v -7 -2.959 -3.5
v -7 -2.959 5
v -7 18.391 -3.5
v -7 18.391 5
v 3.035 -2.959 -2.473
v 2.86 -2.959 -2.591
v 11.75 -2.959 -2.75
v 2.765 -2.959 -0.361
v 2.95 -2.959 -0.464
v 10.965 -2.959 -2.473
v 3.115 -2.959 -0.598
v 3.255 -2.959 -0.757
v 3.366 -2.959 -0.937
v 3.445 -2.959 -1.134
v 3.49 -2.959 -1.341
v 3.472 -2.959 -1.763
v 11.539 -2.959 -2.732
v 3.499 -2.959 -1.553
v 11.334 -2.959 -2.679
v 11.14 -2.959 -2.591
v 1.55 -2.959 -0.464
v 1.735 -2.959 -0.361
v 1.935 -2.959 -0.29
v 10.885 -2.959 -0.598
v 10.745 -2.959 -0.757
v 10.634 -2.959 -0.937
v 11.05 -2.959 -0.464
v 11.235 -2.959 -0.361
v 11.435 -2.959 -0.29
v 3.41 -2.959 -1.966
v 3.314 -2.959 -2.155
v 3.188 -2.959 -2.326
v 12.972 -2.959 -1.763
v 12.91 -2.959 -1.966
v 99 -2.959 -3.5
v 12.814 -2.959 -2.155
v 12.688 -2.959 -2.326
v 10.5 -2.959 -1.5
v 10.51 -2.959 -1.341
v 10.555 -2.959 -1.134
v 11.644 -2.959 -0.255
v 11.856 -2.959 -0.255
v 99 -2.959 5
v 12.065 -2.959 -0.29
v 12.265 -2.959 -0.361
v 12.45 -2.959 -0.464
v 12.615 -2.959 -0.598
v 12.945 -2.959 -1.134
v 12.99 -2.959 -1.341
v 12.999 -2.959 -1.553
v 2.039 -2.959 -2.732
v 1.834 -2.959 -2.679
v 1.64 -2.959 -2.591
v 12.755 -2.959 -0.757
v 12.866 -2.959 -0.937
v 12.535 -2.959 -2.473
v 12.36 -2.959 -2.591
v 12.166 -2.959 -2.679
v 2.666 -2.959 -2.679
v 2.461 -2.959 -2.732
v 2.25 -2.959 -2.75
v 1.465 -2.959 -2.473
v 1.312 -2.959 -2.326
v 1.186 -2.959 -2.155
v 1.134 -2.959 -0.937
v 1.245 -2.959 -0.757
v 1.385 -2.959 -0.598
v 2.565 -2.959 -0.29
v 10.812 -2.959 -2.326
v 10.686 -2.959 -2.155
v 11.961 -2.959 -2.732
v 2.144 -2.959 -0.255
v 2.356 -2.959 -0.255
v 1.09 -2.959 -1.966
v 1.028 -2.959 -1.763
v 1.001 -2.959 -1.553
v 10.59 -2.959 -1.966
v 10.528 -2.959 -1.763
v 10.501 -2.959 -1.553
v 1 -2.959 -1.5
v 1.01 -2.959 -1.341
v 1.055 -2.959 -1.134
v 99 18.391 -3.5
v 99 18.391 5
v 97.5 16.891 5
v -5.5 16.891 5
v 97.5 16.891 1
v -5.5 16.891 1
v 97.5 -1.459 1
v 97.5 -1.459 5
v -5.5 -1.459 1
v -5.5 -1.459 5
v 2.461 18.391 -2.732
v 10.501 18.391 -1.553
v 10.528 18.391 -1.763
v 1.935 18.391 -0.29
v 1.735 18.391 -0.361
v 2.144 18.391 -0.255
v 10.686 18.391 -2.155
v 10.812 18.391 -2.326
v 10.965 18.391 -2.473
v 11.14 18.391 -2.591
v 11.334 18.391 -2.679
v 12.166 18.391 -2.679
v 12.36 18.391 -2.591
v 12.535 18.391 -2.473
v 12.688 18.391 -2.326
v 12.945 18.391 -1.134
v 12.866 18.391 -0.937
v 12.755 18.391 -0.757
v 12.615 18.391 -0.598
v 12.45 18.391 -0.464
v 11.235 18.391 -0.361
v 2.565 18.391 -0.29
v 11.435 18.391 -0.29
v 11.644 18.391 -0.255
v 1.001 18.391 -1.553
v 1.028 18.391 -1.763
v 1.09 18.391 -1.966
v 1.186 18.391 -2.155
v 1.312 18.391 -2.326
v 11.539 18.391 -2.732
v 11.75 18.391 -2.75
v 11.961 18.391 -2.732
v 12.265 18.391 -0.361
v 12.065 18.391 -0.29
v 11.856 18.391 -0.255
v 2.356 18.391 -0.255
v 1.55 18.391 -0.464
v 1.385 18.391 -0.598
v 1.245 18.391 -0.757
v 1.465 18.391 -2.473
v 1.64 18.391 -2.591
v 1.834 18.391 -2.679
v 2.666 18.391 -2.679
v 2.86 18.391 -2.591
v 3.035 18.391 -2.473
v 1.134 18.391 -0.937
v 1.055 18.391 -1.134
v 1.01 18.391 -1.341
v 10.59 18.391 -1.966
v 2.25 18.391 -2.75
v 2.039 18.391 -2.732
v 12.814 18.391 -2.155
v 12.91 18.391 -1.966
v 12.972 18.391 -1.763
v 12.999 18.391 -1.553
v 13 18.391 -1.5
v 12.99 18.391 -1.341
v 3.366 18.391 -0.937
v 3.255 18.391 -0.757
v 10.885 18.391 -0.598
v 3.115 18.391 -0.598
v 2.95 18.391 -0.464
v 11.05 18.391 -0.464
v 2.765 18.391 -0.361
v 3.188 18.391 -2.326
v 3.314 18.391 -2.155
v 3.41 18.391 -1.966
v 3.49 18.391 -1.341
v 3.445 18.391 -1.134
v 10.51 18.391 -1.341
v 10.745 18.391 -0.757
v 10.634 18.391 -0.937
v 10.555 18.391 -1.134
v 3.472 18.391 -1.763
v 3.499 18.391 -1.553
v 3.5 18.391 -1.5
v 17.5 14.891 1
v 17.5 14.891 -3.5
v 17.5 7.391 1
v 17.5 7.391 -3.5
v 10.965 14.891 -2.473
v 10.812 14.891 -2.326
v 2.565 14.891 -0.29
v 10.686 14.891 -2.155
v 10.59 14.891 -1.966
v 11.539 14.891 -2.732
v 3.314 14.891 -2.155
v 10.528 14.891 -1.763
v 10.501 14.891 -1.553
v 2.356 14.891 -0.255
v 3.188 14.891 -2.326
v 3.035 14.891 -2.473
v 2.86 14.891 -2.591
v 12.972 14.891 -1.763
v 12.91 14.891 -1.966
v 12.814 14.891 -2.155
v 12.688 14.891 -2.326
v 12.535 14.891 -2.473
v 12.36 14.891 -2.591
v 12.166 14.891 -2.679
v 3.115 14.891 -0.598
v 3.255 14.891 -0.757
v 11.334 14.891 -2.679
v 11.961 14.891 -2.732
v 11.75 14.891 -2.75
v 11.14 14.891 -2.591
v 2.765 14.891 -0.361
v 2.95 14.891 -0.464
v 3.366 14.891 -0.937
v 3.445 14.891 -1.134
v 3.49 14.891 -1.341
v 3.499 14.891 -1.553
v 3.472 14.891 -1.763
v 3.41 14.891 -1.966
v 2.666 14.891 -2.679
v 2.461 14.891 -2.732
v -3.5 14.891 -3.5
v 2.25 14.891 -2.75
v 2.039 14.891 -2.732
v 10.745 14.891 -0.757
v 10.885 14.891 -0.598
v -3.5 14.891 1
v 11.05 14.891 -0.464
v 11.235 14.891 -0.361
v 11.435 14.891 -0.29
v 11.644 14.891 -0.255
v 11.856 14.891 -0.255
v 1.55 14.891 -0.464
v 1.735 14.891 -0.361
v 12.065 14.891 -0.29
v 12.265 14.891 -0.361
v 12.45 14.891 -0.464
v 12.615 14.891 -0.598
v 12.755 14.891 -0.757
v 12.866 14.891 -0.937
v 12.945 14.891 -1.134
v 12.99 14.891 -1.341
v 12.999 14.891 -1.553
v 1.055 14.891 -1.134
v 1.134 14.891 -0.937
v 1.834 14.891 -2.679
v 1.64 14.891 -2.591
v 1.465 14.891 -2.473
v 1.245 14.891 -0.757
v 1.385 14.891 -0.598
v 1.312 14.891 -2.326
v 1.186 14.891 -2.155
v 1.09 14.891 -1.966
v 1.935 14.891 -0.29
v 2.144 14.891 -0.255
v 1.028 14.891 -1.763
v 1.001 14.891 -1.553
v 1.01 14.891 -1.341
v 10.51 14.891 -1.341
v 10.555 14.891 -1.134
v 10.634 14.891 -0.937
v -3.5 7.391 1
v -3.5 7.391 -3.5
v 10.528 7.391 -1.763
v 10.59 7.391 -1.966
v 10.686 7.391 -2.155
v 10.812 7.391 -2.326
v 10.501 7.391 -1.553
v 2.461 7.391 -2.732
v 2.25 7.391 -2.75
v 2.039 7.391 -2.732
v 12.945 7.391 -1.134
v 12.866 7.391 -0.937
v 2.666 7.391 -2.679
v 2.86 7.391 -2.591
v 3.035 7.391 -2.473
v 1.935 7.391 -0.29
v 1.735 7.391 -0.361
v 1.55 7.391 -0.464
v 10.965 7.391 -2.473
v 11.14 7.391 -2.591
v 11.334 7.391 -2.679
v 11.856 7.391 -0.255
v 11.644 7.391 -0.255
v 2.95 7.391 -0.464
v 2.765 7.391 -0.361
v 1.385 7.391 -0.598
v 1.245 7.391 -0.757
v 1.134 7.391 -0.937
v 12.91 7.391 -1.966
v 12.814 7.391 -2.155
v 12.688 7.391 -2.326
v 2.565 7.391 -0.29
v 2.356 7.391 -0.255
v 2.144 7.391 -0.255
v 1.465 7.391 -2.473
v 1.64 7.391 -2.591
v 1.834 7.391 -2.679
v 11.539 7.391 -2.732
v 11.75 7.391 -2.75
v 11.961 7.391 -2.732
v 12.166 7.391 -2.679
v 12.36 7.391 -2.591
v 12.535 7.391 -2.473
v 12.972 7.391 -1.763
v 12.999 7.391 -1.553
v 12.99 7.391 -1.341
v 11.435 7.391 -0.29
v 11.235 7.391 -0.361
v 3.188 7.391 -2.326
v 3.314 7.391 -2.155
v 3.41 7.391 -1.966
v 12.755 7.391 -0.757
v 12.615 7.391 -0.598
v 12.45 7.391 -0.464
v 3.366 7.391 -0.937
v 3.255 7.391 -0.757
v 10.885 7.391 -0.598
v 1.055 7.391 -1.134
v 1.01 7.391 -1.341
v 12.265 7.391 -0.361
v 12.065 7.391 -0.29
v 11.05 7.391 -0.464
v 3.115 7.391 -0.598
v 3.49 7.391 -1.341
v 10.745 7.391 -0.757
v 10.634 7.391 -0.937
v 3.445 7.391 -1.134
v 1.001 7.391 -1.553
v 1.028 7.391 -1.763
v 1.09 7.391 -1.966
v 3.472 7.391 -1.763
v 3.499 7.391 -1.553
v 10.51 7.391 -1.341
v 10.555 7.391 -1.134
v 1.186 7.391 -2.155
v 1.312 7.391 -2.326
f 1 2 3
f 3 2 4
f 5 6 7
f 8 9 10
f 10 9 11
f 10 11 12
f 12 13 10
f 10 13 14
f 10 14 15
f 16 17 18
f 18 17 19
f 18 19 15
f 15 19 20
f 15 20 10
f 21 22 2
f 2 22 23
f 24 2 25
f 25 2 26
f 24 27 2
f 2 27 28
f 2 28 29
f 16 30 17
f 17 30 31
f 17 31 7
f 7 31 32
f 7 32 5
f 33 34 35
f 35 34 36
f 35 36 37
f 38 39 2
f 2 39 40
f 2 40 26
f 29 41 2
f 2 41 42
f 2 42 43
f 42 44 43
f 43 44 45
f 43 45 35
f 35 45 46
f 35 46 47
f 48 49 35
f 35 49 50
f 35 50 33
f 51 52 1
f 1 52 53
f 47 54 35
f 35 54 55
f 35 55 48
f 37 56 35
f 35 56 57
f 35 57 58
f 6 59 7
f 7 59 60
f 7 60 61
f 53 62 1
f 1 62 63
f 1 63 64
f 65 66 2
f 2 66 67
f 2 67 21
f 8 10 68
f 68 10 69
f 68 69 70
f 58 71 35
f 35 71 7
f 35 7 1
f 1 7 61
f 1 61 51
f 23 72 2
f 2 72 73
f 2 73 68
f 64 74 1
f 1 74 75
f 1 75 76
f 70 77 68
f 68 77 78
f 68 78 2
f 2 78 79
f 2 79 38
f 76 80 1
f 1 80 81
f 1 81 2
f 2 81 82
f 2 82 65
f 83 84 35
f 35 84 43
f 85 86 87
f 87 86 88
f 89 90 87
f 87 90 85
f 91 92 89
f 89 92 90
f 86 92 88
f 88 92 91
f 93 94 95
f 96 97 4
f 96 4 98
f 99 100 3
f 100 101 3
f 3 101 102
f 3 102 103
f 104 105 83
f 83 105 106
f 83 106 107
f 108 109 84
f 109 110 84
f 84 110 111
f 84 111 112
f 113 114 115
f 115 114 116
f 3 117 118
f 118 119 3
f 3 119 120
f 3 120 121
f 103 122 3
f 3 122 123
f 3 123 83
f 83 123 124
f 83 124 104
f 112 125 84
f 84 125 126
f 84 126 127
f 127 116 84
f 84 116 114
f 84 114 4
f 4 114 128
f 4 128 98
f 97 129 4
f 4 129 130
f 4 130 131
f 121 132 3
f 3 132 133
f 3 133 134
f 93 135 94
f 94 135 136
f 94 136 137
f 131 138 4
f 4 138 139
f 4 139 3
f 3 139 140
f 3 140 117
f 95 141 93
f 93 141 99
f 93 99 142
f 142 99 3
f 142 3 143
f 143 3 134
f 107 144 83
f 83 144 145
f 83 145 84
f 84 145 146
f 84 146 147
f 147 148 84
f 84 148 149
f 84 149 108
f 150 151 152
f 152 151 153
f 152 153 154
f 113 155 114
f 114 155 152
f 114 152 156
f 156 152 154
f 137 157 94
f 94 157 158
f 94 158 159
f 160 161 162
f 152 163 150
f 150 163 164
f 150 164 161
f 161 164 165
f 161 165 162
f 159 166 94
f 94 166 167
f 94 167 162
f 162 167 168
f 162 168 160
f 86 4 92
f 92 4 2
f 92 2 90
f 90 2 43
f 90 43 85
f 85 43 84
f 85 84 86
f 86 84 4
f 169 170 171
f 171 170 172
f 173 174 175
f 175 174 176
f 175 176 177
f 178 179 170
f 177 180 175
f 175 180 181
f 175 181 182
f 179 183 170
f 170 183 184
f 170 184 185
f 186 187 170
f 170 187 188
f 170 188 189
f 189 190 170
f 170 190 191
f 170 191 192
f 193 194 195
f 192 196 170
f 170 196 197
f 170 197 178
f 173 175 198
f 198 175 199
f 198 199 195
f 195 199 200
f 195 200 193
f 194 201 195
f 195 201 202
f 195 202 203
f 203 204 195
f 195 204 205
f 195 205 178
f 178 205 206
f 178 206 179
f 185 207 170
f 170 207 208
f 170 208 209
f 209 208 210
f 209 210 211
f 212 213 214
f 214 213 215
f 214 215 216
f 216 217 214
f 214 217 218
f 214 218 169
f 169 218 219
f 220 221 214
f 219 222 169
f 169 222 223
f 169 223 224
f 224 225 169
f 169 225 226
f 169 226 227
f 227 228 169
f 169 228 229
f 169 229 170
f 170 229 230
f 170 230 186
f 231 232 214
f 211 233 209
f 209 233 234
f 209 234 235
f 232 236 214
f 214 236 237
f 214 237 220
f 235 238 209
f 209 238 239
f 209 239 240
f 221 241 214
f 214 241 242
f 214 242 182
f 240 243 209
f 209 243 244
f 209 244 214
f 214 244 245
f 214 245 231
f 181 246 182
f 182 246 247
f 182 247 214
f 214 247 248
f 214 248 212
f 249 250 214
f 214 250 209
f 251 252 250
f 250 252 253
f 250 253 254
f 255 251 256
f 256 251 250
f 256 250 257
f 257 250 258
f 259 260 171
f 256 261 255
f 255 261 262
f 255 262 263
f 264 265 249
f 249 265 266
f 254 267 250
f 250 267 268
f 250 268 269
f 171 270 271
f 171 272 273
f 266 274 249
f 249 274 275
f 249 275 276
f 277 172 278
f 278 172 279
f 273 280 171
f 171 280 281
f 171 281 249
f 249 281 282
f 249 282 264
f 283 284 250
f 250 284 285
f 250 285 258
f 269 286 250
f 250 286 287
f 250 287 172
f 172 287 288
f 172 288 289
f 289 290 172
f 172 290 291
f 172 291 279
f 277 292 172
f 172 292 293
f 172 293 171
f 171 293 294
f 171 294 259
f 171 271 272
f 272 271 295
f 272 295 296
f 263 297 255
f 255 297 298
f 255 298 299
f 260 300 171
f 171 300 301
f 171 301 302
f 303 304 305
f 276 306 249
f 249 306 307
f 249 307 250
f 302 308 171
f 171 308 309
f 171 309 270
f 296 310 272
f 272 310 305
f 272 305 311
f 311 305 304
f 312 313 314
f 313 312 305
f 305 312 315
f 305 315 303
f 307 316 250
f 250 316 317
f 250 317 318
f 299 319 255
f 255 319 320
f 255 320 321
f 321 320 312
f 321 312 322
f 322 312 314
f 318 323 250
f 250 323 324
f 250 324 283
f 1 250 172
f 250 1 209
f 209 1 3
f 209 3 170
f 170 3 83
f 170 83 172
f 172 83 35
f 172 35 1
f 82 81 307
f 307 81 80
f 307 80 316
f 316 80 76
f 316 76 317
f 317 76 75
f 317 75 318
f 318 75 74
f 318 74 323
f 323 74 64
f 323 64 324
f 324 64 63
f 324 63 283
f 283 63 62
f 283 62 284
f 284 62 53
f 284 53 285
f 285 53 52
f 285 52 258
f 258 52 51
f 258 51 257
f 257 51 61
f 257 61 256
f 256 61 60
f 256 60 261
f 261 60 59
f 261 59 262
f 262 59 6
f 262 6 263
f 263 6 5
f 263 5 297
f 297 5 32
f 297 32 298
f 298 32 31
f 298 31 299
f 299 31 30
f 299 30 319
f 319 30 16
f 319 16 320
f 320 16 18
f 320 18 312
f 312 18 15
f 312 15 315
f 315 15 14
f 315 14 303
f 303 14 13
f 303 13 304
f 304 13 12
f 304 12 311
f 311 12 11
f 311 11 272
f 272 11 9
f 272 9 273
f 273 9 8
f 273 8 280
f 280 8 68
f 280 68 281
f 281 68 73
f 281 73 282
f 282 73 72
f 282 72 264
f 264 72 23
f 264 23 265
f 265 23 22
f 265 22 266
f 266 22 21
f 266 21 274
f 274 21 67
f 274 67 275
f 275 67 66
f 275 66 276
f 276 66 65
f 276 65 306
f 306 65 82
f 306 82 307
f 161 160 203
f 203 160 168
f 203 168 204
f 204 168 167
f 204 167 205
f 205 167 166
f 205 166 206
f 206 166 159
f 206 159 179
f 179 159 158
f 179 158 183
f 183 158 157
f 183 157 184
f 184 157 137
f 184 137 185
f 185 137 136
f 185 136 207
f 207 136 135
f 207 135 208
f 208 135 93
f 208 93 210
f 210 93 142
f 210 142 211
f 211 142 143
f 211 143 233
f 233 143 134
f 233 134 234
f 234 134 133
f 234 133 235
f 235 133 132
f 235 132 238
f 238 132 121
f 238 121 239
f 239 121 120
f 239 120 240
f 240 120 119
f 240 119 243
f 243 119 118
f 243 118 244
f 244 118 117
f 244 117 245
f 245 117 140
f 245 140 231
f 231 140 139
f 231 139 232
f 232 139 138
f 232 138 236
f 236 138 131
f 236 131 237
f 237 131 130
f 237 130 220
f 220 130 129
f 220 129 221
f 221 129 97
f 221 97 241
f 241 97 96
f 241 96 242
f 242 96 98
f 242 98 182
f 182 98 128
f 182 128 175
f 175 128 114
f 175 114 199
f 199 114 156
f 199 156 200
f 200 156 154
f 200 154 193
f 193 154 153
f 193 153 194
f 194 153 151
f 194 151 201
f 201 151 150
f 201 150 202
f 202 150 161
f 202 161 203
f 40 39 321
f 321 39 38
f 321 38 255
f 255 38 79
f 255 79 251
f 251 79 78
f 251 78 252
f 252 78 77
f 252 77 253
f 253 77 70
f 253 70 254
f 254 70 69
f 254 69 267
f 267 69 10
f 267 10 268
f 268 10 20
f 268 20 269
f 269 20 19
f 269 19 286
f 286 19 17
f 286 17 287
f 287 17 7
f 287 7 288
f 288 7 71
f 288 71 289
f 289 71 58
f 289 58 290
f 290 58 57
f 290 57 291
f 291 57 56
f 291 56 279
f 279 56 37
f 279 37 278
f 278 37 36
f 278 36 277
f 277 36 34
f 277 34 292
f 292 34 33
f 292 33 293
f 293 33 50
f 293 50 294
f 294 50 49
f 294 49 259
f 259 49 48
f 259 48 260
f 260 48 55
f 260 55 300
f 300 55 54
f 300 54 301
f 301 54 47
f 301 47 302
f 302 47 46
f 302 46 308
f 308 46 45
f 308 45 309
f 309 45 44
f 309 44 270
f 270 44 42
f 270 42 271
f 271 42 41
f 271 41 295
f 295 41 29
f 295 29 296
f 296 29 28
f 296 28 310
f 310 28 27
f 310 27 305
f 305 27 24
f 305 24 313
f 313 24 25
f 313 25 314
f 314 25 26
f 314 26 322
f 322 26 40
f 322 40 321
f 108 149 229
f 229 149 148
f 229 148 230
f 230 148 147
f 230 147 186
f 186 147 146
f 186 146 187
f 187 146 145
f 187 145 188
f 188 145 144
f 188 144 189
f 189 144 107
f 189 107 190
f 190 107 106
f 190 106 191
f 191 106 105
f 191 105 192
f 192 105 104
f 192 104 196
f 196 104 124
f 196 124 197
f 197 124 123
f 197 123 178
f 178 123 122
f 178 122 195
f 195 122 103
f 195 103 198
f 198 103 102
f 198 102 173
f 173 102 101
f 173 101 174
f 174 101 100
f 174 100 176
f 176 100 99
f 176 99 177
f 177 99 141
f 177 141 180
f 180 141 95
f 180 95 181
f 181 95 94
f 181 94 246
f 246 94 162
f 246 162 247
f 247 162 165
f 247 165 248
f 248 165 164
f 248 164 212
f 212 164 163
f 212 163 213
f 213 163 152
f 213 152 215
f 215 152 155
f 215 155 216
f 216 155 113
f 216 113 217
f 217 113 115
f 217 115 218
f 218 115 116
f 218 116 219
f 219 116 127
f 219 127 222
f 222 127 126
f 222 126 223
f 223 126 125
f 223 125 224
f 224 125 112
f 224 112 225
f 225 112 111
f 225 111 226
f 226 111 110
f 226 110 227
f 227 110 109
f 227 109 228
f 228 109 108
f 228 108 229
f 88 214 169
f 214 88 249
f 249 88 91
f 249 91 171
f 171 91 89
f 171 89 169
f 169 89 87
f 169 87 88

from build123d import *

# Parameters (mm, degrees)
RESSALTO_EXTRUS_O1_DEPTH = 5
ESBO_O1_4_W              = 106
ESBO_O1_4_H              = 21.35
ESBO_O1_4_W_2            = 21
ESBO_O1_4_H_2            = 7.5
RESSALTO_EXTRUS_O2_DEPTH = 3.5
CORTE_EXTRUS_O10_START   = -2.958856
ESBO_O3_R                = 1.25
CORTE_EXTRUS_O10_DEPTH   = 30
RESSALTO_EXTRUS_O4_DEPTH = 1


with BuildPart() as part:
    # Esboço1 → Ressalto-extrusão1 (new body)
    with BuildSketch(Plane.XY):
        Polygon((86, -2.958856089), (99, -2.958856089), (99, 18.391143911), (86, 18.391143911), (-7, 18.391143911), (-7, -2.958856089), align=None)
        Polygon((-5.5, 9.388435505), (-5.5, 16.891143911), (-3.5, 16.891143911), (17.5, 16.891143911), (87.5, 16.891143911), (97.5, 16.891143911), (97.5, -1.458856089), (87.5, -1.458856089), (-5.5, -1.458856089), align=None, mode=Mode.SUBTRACT)
    extrude(amount=RESSALTO_EXTRUS_O1_DEPTH)

    # Esboço1<4> → Ressalto-extrusão2 (add)
    with BuildSketch(Plane.XY):
        with Locations((46, 7.716143911)):
            Rectangle(ESBO_O1_4_W, ESBO_O1_4_H)
        with Locations((7, 11.141143911)):
            Rectangle(ESBO_O1_4_W_2, ESBO_O1_4_H_2, mode=Mode.SUBTRACT)
    extrude(amount=-RESSALTO_EXTRUS_O2_DEPTH)

    # Esboço3 → Corte-extrusão10 (cut)
    with BuildSketch(Plane(origin=(0, 0, 0), x_dir=(1, 0, 0), z_dir=(0, 1, 0)).offset(CORTE_EXTRUS_O10_START)):
        with Locations((2.25, 1.5)):
            Circle(ESBO_O3_R)
        with Locations((11.75, 1.5)):
            Circle(ESBO_O3_R)
    extrude(amount=CORTE_EXTRUS_O10_DEPTH, mode=Mode.SUBTRACT)

    # Esboço1<7> → Ressalto-extrusão4 (add)
    with BuildSketch(Plane.XY):
        Polygon((-3.5, 16.891143911), (-5.5, 16.891143911), (-5.5, 9.388435505), (-5.5, -1.458856089), (87.5, -1.458856089), (97.5, -1.458856089), (97.5, 16.891143911), (87.5, 16.891143911), (17.5, 16.891143911), align=None)
        Polygon((88, -0.958856089), (-5, -0.958856089), (-5, 16.391143911), (88, 16.391143911), (97, 16.391143911), (97, -0.958856089), align=None, mode=Mode.SUBTRACT)
        Polygon((97, -0.958856089), (88, -0.958856089), (-5, -0.958856089), (-5, 16.391143911), (88, 16.391143911), (97, 16.391143911), align=None)
        Polygon((17.5, 7.391143911), (17.5, 9.388435505), (17.5, 14.891143911), (-3.5, 14.891143911), (-3.5, 7.391143911), align=None, mode=Mode.SUBTRACT)
    extrude(amount=RESSALTO_EXTRUS_O4_DEPTH)


solid = part.part
